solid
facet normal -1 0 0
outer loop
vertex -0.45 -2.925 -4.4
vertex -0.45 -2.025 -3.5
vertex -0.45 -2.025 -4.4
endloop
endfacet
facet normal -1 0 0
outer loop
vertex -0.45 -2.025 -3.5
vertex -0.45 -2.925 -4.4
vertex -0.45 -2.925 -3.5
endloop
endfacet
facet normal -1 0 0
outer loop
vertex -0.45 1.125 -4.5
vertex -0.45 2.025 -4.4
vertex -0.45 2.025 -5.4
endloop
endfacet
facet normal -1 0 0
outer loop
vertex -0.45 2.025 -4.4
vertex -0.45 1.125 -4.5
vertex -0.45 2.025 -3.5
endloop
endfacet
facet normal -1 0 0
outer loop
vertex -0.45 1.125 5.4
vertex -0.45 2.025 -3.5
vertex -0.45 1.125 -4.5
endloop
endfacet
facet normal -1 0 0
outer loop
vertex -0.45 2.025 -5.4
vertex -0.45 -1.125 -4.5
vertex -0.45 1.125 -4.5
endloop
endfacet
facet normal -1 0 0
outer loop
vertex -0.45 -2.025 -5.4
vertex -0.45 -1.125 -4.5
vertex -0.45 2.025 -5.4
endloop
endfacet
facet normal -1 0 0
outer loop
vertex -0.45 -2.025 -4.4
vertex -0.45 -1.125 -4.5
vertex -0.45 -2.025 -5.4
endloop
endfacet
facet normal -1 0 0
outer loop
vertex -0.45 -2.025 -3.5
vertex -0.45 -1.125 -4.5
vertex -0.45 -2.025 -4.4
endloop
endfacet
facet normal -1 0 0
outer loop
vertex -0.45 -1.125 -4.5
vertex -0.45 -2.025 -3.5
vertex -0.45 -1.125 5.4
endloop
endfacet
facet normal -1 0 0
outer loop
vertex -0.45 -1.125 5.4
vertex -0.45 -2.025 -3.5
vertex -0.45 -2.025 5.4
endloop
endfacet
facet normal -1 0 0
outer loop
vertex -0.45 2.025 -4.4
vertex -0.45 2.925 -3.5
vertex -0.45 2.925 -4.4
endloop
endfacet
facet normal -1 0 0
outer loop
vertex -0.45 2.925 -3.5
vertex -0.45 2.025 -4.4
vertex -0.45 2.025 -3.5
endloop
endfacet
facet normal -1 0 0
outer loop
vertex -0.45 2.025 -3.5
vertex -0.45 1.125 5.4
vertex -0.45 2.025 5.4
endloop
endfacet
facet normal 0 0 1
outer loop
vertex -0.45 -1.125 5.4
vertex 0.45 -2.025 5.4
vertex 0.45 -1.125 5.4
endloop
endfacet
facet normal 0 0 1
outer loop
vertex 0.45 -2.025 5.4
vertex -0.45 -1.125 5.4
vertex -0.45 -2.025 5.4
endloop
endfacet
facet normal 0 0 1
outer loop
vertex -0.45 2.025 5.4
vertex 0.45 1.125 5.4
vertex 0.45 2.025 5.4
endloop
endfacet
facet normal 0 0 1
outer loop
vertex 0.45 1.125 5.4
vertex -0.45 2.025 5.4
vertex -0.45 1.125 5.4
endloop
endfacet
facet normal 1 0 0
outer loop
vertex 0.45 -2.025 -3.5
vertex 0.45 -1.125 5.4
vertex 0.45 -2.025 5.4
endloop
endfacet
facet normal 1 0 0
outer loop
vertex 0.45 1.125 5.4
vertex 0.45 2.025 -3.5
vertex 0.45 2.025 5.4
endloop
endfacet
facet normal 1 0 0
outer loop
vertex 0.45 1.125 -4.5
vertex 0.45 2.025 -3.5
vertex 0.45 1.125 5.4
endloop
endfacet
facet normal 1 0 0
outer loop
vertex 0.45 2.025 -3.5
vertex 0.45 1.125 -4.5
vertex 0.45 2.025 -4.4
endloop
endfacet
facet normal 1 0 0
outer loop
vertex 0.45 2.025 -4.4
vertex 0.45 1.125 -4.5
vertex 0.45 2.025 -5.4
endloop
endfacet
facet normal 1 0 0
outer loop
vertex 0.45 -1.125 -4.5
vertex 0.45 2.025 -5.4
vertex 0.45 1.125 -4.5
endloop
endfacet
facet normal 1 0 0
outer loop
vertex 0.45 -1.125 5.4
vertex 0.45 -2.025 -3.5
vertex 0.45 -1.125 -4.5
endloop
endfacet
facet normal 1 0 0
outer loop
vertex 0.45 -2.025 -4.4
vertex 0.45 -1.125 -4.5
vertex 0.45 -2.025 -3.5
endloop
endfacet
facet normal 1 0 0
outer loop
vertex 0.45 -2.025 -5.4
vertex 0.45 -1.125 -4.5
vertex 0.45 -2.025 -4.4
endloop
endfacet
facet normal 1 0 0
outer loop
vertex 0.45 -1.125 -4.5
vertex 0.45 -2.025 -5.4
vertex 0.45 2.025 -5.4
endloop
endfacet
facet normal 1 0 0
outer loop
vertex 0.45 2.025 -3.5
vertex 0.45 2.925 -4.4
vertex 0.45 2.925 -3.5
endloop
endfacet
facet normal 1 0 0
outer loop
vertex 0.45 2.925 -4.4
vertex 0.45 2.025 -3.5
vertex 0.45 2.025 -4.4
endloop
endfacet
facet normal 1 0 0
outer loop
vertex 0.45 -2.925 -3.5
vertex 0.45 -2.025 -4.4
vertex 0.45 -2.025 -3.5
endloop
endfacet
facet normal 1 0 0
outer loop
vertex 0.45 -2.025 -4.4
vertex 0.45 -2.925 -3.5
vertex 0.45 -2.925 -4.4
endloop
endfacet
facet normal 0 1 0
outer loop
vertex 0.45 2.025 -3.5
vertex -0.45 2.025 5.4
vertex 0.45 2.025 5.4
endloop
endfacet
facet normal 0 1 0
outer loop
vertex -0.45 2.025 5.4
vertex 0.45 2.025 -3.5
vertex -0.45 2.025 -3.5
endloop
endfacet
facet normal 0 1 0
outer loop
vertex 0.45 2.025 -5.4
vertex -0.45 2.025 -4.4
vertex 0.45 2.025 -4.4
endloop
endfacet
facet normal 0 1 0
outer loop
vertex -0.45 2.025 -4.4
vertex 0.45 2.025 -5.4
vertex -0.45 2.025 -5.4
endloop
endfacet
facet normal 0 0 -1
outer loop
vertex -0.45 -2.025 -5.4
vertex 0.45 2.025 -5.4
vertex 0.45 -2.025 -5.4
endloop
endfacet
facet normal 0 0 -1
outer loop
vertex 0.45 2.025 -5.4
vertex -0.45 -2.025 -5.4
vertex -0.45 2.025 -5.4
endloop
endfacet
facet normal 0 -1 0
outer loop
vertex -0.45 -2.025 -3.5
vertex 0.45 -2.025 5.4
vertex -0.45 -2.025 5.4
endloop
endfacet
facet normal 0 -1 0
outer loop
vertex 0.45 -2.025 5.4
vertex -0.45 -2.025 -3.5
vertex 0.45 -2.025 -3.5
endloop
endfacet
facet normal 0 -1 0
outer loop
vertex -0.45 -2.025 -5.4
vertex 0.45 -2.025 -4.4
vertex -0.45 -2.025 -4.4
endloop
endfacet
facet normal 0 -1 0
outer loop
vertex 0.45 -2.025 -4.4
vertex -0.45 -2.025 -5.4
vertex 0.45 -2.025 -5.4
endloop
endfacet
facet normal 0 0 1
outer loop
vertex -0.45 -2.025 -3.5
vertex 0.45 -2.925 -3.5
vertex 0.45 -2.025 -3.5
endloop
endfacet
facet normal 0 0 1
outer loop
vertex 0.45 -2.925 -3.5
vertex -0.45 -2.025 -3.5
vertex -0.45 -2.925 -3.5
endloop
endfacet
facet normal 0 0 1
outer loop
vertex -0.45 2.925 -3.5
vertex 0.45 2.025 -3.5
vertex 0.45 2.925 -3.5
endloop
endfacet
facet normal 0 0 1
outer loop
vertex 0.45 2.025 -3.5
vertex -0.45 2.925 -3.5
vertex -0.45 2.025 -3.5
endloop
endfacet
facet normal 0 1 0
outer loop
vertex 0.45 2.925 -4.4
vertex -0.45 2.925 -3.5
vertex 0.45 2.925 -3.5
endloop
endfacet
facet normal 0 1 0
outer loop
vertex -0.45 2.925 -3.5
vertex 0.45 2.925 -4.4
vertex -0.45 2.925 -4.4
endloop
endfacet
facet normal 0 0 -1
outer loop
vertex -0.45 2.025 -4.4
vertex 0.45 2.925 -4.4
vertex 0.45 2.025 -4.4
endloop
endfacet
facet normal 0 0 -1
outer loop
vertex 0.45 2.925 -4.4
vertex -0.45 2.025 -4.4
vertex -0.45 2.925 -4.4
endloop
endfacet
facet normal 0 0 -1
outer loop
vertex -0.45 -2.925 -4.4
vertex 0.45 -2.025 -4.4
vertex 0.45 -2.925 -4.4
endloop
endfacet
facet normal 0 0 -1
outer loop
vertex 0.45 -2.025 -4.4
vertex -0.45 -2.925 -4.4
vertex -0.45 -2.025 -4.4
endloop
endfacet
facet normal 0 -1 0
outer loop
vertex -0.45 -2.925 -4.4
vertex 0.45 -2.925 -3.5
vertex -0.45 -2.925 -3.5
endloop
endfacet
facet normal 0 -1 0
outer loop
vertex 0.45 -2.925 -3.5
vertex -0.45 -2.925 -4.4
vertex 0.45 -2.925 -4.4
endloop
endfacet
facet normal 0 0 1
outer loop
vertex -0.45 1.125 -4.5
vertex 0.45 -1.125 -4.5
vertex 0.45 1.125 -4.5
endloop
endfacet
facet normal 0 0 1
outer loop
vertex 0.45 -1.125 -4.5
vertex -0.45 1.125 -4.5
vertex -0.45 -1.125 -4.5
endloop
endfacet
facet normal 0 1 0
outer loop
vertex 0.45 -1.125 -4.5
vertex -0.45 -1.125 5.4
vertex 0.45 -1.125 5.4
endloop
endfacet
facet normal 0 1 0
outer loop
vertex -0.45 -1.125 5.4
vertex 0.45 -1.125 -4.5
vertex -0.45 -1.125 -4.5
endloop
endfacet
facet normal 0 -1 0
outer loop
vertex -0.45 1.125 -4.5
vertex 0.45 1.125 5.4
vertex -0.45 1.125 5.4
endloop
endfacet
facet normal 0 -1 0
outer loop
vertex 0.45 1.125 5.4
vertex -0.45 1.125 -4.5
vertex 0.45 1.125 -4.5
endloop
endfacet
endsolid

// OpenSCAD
// file: globals.scad
//based around 0.4 nozzle width
// block = 
unit = 0.45*2;
space = (unit/2)*1.5;

pin_x = unit * 1;
        // tab + spoke + space + rack + space + spoke + tab
pin_y = unit + unit + space + unit + space + unit + unit; 
pin_z = unit * 12;

hole_x = pin_x + (space*2); // 1 + 0.8 each side
hole_y = pin_y + (space*2); // 6 + 0.8 each side
hole_z = pin_z + (space*2); // 12 + 0.75 

slidesSection_x = unit+hole_x+unit;
slidesSection_y = unit+hole_y+unit;
slidesSection_z = unit;

boarder = 20;

x_hole_spacing = slidesSection_x + space + unit ;
// main file
include <globals.scad>;

module pin()
{
    //# Space of 2 middle, 1
    //# 1 of each sde
    //# Total width = 4
    // # total height is bottom tabs (2) plus projection of 10 = 12
    difference()
    {
        union()
        {
            cube([pin_x, pin_y-(unit*2), pin_z], center=true);
            translate([0,0,-pin_z/2+unit/2]) // to bottom
            translate([0,0,1]) // up by 1
            cube([unit, pin_y, unit], center=true);
        }
        translate([0,0,unit ]) cube([unit*2, space+unit+space, pin_z], center=true);
    }
}


module pinHole()
{

    cube([hole_x, hole_y, hole_z], center=true);
}


pin();
//#pinHole();
